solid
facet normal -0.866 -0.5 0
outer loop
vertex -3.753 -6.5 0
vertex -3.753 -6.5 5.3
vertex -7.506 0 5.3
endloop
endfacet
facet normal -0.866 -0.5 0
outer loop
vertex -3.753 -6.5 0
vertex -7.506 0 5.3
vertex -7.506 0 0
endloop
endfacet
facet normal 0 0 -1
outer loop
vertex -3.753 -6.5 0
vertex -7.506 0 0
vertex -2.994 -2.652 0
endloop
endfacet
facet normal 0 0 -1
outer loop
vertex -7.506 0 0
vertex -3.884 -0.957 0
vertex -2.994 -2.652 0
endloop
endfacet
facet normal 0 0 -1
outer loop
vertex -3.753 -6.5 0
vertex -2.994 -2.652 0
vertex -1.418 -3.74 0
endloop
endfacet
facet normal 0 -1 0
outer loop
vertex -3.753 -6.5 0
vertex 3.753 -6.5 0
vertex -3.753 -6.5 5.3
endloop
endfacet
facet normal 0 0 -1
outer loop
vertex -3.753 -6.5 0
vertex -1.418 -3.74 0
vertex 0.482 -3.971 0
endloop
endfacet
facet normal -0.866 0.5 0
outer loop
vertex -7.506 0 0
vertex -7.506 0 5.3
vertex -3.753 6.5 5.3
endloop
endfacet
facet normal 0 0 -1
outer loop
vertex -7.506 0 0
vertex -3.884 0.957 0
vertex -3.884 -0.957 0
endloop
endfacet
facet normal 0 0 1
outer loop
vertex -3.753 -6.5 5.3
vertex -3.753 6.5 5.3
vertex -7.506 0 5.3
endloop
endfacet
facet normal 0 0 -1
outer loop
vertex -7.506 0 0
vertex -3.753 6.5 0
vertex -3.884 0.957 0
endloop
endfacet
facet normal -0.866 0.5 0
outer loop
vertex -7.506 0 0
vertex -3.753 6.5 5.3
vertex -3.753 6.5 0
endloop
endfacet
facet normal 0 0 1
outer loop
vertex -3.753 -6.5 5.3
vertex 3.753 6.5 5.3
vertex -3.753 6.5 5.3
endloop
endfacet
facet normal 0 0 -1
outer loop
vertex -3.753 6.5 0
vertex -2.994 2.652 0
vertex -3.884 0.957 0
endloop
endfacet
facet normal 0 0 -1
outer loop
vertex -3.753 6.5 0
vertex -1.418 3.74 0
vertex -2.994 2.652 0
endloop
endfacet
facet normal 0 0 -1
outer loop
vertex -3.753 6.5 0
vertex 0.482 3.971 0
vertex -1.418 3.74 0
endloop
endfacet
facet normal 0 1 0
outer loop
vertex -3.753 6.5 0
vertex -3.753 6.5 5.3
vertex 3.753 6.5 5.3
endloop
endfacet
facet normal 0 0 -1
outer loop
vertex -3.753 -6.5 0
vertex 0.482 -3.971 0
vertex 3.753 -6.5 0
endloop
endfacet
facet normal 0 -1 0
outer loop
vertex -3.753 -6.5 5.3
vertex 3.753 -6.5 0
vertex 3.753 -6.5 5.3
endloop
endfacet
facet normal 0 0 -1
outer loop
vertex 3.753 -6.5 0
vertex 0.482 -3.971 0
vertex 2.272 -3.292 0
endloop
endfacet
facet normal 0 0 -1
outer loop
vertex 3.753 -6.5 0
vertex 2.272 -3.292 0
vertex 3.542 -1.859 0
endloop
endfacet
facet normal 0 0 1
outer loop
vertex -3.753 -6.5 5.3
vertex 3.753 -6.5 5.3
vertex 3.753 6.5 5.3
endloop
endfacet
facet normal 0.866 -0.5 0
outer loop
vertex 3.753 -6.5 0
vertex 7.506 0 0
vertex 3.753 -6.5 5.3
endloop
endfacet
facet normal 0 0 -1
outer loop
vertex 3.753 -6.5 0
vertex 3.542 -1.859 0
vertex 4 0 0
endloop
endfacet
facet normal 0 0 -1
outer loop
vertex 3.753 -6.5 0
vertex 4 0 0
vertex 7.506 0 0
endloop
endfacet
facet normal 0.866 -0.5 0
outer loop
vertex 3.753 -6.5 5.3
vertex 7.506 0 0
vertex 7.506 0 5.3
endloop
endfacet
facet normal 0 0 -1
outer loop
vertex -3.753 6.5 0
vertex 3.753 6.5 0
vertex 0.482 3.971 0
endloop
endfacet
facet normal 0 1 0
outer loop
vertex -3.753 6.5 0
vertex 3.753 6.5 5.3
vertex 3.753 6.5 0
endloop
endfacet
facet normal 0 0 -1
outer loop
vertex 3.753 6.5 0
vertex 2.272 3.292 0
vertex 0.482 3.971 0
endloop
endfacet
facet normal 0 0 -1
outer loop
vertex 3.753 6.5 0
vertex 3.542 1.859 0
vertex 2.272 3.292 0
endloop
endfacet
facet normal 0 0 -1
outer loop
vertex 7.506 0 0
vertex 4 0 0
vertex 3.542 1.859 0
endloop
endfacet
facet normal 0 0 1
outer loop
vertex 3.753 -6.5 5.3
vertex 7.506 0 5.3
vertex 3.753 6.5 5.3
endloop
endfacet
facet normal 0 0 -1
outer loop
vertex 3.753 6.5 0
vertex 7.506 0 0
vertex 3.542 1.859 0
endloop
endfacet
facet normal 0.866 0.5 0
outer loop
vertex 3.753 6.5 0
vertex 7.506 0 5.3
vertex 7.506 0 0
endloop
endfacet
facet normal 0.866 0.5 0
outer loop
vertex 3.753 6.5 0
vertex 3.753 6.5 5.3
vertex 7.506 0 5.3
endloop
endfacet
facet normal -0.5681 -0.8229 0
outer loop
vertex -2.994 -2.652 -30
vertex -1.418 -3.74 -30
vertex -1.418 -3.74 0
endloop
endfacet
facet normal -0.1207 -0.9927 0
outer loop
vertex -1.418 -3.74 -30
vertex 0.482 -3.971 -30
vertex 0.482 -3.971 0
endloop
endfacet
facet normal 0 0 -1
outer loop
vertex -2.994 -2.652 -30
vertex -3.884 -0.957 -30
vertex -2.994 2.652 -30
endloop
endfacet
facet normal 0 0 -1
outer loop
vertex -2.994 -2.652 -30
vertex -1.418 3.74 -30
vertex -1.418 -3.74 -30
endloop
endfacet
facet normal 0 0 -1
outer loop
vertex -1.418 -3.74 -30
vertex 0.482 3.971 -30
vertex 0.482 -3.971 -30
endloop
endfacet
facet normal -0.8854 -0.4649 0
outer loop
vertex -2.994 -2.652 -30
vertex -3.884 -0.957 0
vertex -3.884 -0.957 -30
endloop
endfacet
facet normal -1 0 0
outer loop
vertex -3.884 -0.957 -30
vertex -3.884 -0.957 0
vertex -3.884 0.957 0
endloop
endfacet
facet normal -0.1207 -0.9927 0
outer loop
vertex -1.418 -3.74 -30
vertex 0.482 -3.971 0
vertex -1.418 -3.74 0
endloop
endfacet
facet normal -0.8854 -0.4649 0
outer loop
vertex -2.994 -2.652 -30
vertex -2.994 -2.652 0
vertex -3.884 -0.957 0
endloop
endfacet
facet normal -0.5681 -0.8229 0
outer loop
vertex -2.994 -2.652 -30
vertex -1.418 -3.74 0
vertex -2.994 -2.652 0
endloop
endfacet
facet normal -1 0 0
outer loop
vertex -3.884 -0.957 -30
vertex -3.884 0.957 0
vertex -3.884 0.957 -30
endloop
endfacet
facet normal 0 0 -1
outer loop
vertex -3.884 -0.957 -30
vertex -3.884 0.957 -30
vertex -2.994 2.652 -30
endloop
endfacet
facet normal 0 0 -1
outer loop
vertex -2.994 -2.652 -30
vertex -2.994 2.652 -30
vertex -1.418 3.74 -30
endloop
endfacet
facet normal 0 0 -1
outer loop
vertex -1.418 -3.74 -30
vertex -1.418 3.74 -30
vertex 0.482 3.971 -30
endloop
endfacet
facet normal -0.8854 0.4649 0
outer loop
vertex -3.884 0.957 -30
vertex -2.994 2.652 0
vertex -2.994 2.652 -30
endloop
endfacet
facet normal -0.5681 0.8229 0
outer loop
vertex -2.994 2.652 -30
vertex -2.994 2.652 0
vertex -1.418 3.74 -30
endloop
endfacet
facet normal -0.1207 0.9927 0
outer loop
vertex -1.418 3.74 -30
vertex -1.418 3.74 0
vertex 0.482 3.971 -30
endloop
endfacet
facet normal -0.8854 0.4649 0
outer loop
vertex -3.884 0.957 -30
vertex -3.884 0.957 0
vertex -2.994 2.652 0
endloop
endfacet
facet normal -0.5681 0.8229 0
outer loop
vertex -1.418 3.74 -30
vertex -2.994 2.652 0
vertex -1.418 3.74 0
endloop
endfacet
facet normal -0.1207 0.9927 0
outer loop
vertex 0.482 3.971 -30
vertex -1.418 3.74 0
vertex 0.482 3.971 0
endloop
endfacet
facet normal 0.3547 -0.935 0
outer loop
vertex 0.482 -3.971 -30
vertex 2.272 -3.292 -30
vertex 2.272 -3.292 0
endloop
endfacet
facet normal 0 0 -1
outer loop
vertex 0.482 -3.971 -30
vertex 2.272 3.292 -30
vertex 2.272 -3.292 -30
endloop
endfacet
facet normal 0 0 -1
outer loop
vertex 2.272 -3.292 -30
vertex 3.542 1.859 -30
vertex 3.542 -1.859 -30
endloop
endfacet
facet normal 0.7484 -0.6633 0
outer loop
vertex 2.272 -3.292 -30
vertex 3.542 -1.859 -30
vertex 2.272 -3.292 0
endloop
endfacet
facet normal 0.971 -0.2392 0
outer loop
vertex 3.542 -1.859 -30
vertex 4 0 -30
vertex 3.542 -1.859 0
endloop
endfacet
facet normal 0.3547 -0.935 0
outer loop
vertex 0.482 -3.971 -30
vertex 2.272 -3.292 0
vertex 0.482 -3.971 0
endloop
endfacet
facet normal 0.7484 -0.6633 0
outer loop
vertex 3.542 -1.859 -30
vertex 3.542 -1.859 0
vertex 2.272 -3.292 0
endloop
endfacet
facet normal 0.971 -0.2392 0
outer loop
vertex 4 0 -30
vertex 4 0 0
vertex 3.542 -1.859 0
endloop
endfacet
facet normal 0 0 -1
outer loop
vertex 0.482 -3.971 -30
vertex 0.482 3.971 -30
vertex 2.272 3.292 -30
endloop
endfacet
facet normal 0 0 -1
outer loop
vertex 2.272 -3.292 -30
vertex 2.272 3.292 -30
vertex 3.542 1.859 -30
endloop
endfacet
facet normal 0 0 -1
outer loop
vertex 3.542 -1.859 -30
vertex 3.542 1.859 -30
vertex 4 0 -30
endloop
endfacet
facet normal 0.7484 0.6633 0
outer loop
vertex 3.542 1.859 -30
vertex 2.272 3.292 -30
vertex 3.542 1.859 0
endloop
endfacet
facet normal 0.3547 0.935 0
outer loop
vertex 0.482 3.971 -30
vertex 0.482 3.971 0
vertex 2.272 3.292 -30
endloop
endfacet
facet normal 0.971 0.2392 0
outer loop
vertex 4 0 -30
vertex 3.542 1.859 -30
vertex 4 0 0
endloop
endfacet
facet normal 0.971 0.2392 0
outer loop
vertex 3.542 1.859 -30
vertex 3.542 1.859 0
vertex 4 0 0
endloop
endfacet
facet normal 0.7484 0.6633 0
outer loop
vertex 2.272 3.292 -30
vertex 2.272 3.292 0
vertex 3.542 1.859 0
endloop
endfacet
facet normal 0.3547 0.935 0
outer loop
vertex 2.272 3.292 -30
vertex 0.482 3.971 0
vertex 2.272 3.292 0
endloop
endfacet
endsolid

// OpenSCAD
// M8 Hex Bolt (shank only, no threads)

// Bolt dimensions
head_across_flats = 13; // Across-flats of the hex head
head_height = 5.3;     // Height of the hex head
shank_diameter = 8;    // Diameter of the shank
shank_length = 30;     // Length of the shank

// Calculate the radius to the vertices of the hexagon from the center
// The distance from the center to the midpoint of a side (apothem) is
// half the across-flats distance. The distance to a vertex is
// apothem / cos(30 degrees).
hex_radius_to_vertex = (head_across_flats / 2) / cos(30);

// Create the hex head using polygon and linear_extrude
module hex_head() {
    // The polygon is defined in the XY plane, and linear_extrude extrudes it along Z.
    // By default, the extrusion starts from z=0 and goes up.
    linear_extrude(height = head_height) {
        polygon(points = [
            [hex_radius_to_vertex * cos(0), hex_radius_to_vertex * sin(0)],
            [hex_radius_to_vertex * cos(60), hex_radius_to_vertex * sin(60)],
            [hex_radius_to_vertex * cos(120), hex_radius_to_vertex * sin(120)],
            [hex_radius_to_vertex * cos(180), hex_radius_to_vertex * sin(180)],
            [hex_radius_to_vertex * cos(240), hex_radius_to_vertex * sin(240)],
            [hex_radius_to_vertex * cos(300), hex_radius_to_vertex * sin(300)]
        ]);
    }
}

// Create the shank
module shank() {
    // The cylinder is created with its base at z=0 and extends upwards.
    // To make it extend in the -Z direction, we'll negate its height or translate it.
    cylinder(h=shank_length, r=shank_diameter/2, center=false);
}

// Assemble the bolt
module m8_bolt() {
    // Place the hex head. Its bottom face is at z=0 as per the prompt.
    hex_head();

    // Place the shank below the head.
    // The head's bottom is at z=0. The shank should start from z=0 and go downwards.
    // To achieve this, we translate the shank module's default position.
    // The shank module creates a cylinder starting at z=0 and going up.
    // We need to move it down by the height of the head and then negate its Z extent,
    // or simply translate it so its top face aligns with the head's bottom face.
    // A simpler way is to translate it by -head_height and then reverse its orientation if needed,
    // or by creating it with a negative height if OpenSCAD supported that directly for cylinder.
    // The current shank() creates a cylinder from z=0 to z=shank_length.
    // To place it below the head (which is from z=0 to z=head_height),
    // we need its top at z=0 and extend to z=-shank_length.
    // So we translate it by (0, 0, -head_height). This moves the base of the cylinder to z = -head_height.
    // The cylinder then goes from z = -head_height to z = -head_height + shank_length.
    // This is incorrect.

    // Let's re-think the placement.
    // Head is from z=0 to z=head_height.
    // Shank needs to be from z=0 downwards.
    // The shank module currently creates a cylinder from z=0 to z=shank_length.
    // We need to flip it and position its top at z=0.

    // Option 1: Create shank that extends downwards directly.
    // module shank_down() {
    //     cylinder(h=-shank_length, r=shank_diameter/2, center=false); // This would require negative height support
    // }
    // translate([0, 0, 0]) shank_down(); // This would put its top at z=0.

    // Option 2: Use translate and rotate or scale.
    // Create the shank normally (z=0 to shank_length) and then move it.
    // We want the top of the shank to be at z=0. The shank module's top is at z=shank_length.
    // So we need to move it up by shank_length, and then flip it.
    // Or, we create it and then move its base to z=0 and then flip its Z direction.

    // The simplest is to align the top of the shank with the bottom of the head.
    // The head's bottom is at z=0.
    // The shank module creates a cylinder from z=0 to z=shank_length.
    // We want the shank to go from z=0 to z=-shank_length.
    // So we need to translate the shank module by (0, 0, 0) but with a negative height, which we cannot do directly.
    // A common way is to center the cylinder and then translate.
    // If cylinder(h=..., r=..., center=true), it goes from -h/2 to +h/2.

    // Let's go back to the original intent: "shankは z<0 側へ伸ばす" and "頭部の底面が原点(z=0)に来るように配置".
    // The hex_head() call already places the head with its bottom at z=0.
    // So the shank should start at z=0 and go down.
    // The current shank() creates a cylinder from z=0 to z=shank_length.
    // We need to take this cylinder and move its top face (which is at z=shank_length) to z=0.
    // This means translating it upwards by -shank_length.
    // This is incorrect.

    // Let's try again.
    // Head: z = 0 to z = head_height.
    // Shank: Needs to be from z = 0 to z = -shank_length.

    // Current shank() makes cylinder from z=0 to z=shank_length.
    // To make it go from z=0 to z=-shank_length, we can do the following:
    // 1. Translate it up so its base is at z = shank_length.
    // 2. Then flip it along the Z axis.
    // 3. Then translate it down so its top is at z=0.

    // Let's use a more direct approach.
    // We want the top of the shank to be at z=0.
    // The shank module creates a cylinder with its base at z=0.
    // So, if we translate it by (0, 0, -shank_length), its base is at z=-shank_length and top at z=0.
    // This is correct for positioning its top at z=0.
    // However, the prompt states "シャンクは z<0 側へ伸ばす", meaning it should extend into negative Z.
    // So, the bottom of the shank should be at z=-shank_length and the top at z=0.

    // The hex_head() is called and its bottom is at z=0.
    // The shank should then start from z=0 and go to z=-shank_length.
    // The shank module currently creates a cylinder from z=0 to z=shank_length.
    // To make it go from z=0 to z=-shank_length, we need to reverse its direction.
    // One way is to create the cylinder and then rotate it 180 degrees around X or Y,
    // then translate it.

    // A simpler way is to realize that OpenSCAD's cylinder(h, r) creates from z=0 to z=h.
    // If we want it from z=0 to z=-shank_length, we can write:
    // translate([0,0,0]) {
    //     rotate([180, 0, 0]) cylinder(h=shank_length, r=shank_diameter/2, center=false);
    // }
    // This places the origin of the rotated cylinder at z=0, so it will go from z=0 down to z=-shank_length.

    // So, the shank should be placed at z=0 (origin of the rotated cylinder).
    translate([0, 0, 0]) {
        rotate([180, 0, 0]) {
            cylinder(h=shank_length, r=shank_diameter/2, center=false);
        }
    }
}

// Render the bolt
m8_bolt();
